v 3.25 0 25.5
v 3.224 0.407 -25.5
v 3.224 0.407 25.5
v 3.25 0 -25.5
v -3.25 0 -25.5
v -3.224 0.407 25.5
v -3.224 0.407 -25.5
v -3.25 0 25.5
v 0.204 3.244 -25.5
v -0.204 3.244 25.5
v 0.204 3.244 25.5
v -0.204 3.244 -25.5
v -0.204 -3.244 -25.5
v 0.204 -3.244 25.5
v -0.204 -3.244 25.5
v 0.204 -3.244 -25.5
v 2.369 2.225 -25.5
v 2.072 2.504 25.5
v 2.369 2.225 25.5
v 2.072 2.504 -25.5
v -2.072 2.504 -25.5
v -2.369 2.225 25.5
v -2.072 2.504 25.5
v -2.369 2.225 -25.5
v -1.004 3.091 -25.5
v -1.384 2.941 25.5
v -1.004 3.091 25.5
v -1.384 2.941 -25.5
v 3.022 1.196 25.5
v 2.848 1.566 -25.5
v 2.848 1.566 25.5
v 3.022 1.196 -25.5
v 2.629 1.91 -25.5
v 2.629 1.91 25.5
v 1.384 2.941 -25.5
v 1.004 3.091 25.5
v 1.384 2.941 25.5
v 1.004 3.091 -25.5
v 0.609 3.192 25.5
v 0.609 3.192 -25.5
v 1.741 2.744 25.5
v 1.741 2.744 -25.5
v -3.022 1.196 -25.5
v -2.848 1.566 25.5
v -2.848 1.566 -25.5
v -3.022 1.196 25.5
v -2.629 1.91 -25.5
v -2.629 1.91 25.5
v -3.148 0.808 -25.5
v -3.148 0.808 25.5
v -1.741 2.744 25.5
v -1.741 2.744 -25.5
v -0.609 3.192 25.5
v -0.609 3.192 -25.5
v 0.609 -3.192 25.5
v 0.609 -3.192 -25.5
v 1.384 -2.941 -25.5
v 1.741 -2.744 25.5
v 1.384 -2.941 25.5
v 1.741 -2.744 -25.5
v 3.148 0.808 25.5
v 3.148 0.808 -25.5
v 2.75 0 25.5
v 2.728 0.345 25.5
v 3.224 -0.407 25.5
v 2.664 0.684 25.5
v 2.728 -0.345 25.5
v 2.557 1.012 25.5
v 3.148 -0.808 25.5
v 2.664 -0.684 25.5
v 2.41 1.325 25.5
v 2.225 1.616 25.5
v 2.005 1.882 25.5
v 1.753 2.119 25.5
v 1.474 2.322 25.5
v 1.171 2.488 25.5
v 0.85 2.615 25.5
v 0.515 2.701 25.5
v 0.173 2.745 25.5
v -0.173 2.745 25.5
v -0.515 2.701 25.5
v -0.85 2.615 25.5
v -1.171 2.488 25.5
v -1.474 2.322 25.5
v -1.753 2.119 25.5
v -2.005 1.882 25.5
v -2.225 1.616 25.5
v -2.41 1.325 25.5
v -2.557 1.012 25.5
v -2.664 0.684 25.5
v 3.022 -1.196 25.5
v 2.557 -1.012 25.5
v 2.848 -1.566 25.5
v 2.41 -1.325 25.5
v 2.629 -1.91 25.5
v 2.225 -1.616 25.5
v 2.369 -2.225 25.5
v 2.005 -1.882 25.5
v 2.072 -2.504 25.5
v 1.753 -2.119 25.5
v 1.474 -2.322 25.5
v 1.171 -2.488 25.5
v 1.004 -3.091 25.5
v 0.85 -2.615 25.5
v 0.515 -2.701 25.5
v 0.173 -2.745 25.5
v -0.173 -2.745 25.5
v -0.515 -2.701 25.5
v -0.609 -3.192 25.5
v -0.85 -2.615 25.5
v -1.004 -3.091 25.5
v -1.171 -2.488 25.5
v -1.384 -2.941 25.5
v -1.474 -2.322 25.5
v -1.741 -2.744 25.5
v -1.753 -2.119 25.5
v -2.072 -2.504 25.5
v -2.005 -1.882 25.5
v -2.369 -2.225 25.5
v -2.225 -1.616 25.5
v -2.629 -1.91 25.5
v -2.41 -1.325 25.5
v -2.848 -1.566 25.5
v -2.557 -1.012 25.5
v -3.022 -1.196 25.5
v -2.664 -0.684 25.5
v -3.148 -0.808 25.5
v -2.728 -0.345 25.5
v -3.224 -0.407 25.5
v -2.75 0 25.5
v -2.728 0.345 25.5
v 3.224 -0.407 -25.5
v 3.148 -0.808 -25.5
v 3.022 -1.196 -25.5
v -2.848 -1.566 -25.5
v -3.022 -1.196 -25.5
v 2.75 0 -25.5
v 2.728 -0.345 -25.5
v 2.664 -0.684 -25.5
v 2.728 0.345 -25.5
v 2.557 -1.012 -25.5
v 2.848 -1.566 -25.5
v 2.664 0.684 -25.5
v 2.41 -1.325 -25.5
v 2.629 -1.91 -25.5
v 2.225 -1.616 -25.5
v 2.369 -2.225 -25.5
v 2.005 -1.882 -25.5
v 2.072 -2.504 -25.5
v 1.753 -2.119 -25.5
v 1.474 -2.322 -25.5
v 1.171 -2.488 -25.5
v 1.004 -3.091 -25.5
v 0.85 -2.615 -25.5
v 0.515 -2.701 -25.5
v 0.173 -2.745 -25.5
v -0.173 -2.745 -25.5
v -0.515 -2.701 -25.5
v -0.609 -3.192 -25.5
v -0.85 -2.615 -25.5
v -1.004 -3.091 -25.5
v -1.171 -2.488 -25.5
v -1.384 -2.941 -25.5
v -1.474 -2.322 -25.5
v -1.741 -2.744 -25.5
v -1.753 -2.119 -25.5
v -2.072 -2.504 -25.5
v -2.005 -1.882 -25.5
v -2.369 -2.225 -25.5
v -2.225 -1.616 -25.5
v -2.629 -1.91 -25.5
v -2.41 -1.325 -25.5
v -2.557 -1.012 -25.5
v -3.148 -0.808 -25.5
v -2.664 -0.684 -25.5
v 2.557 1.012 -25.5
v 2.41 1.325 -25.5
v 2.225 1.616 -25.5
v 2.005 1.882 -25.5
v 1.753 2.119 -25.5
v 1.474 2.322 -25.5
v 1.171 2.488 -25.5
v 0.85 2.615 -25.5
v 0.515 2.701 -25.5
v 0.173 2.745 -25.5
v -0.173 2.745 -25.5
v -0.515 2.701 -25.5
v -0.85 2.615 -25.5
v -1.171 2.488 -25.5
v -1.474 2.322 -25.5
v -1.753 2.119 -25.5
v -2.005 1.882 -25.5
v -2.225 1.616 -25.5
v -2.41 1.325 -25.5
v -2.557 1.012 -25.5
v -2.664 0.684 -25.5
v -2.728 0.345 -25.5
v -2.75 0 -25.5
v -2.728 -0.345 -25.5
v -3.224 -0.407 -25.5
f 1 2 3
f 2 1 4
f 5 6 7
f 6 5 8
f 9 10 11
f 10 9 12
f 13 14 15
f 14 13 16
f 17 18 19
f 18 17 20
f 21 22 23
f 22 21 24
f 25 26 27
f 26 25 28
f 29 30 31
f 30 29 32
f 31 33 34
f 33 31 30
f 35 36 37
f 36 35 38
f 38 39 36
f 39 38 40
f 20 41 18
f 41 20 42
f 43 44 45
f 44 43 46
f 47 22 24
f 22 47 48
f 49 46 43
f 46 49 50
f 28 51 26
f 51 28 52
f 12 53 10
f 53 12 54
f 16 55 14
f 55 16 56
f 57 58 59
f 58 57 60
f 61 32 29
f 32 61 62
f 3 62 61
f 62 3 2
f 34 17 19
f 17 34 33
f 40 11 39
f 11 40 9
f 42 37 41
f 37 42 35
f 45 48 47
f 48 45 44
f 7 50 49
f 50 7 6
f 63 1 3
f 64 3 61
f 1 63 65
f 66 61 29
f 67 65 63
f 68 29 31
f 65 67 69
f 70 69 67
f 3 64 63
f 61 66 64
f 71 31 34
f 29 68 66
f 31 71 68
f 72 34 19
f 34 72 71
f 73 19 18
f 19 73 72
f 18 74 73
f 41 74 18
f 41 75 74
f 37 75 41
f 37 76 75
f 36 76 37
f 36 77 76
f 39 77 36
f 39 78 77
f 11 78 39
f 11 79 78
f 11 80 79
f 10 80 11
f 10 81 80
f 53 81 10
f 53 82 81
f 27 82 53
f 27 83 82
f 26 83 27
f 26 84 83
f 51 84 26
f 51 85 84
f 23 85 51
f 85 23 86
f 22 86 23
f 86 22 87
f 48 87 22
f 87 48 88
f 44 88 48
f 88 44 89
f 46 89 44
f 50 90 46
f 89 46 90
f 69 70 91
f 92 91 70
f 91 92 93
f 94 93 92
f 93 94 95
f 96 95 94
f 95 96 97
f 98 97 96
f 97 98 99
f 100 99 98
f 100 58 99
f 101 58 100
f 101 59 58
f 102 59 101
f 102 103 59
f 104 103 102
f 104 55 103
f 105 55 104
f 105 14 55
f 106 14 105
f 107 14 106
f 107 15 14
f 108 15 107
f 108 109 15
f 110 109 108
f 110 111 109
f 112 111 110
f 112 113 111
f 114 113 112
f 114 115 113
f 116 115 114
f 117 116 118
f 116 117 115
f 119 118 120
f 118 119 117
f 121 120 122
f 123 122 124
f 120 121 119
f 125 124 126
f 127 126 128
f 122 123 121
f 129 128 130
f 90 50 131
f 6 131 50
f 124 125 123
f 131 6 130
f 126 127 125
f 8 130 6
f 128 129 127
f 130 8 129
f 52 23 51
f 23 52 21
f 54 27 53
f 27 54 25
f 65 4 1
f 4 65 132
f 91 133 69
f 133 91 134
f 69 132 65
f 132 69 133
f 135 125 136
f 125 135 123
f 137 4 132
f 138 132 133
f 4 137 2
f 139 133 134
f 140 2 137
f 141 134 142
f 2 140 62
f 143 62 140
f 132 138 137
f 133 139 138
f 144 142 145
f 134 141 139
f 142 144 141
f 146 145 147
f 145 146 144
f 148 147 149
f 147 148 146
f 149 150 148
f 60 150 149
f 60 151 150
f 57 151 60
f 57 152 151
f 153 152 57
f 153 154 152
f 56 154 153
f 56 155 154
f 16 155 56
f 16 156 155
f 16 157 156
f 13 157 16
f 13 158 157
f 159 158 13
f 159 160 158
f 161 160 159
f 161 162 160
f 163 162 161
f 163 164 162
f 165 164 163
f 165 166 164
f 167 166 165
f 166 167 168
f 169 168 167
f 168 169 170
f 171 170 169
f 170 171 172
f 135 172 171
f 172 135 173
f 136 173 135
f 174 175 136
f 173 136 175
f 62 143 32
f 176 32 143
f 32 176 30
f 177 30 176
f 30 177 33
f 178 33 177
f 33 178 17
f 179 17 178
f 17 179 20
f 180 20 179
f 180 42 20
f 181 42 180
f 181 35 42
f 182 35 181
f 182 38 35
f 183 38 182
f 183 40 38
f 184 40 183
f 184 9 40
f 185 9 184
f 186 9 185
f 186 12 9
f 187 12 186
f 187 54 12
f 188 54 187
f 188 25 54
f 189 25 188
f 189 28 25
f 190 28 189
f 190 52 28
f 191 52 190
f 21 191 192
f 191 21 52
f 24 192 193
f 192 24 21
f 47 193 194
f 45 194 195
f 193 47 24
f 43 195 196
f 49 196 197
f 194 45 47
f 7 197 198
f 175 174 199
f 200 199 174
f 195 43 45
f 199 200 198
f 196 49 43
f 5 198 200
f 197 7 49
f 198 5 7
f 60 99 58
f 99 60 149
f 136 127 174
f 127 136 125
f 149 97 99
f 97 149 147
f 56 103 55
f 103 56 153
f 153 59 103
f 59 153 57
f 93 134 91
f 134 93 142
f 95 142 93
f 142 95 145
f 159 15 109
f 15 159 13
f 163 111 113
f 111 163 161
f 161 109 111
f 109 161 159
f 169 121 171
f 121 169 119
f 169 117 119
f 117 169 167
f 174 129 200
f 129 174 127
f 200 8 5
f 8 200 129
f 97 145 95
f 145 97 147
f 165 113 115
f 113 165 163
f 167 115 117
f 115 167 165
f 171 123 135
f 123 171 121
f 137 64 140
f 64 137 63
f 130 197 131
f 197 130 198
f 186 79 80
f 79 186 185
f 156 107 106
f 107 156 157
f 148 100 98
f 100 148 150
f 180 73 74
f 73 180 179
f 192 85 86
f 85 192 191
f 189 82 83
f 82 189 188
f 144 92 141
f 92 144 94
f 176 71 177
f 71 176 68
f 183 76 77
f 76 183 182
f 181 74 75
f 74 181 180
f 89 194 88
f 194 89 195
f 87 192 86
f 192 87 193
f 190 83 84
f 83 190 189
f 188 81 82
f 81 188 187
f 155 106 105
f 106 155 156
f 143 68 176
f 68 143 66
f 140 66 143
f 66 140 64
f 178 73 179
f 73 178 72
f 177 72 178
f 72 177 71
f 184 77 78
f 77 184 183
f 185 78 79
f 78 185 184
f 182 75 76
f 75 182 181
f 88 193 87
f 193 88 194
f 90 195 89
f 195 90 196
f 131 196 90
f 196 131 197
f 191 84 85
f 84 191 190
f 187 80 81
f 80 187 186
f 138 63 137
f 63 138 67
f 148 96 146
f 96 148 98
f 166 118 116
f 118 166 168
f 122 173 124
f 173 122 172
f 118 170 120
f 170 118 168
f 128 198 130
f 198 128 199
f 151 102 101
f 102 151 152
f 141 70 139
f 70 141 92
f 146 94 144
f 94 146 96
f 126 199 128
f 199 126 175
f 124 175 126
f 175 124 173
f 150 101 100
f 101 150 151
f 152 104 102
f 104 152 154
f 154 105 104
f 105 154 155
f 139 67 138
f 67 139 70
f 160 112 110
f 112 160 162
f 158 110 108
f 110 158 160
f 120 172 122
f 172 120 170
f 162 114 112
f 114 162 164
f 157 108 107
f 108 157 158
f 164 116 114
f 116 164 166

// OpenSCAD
$fn = 50;


difference() {
	union() {
		translate(v = [0, 0, -25.5000000000]) {
			cylinder(h = 51, r = 3.2500000000);
		}
	}
	union() {
		translate(v = [0, 0, -100.0000000000]) {
			cylinder(h = 200, r = 2.7500000000);
		}
	}
}
